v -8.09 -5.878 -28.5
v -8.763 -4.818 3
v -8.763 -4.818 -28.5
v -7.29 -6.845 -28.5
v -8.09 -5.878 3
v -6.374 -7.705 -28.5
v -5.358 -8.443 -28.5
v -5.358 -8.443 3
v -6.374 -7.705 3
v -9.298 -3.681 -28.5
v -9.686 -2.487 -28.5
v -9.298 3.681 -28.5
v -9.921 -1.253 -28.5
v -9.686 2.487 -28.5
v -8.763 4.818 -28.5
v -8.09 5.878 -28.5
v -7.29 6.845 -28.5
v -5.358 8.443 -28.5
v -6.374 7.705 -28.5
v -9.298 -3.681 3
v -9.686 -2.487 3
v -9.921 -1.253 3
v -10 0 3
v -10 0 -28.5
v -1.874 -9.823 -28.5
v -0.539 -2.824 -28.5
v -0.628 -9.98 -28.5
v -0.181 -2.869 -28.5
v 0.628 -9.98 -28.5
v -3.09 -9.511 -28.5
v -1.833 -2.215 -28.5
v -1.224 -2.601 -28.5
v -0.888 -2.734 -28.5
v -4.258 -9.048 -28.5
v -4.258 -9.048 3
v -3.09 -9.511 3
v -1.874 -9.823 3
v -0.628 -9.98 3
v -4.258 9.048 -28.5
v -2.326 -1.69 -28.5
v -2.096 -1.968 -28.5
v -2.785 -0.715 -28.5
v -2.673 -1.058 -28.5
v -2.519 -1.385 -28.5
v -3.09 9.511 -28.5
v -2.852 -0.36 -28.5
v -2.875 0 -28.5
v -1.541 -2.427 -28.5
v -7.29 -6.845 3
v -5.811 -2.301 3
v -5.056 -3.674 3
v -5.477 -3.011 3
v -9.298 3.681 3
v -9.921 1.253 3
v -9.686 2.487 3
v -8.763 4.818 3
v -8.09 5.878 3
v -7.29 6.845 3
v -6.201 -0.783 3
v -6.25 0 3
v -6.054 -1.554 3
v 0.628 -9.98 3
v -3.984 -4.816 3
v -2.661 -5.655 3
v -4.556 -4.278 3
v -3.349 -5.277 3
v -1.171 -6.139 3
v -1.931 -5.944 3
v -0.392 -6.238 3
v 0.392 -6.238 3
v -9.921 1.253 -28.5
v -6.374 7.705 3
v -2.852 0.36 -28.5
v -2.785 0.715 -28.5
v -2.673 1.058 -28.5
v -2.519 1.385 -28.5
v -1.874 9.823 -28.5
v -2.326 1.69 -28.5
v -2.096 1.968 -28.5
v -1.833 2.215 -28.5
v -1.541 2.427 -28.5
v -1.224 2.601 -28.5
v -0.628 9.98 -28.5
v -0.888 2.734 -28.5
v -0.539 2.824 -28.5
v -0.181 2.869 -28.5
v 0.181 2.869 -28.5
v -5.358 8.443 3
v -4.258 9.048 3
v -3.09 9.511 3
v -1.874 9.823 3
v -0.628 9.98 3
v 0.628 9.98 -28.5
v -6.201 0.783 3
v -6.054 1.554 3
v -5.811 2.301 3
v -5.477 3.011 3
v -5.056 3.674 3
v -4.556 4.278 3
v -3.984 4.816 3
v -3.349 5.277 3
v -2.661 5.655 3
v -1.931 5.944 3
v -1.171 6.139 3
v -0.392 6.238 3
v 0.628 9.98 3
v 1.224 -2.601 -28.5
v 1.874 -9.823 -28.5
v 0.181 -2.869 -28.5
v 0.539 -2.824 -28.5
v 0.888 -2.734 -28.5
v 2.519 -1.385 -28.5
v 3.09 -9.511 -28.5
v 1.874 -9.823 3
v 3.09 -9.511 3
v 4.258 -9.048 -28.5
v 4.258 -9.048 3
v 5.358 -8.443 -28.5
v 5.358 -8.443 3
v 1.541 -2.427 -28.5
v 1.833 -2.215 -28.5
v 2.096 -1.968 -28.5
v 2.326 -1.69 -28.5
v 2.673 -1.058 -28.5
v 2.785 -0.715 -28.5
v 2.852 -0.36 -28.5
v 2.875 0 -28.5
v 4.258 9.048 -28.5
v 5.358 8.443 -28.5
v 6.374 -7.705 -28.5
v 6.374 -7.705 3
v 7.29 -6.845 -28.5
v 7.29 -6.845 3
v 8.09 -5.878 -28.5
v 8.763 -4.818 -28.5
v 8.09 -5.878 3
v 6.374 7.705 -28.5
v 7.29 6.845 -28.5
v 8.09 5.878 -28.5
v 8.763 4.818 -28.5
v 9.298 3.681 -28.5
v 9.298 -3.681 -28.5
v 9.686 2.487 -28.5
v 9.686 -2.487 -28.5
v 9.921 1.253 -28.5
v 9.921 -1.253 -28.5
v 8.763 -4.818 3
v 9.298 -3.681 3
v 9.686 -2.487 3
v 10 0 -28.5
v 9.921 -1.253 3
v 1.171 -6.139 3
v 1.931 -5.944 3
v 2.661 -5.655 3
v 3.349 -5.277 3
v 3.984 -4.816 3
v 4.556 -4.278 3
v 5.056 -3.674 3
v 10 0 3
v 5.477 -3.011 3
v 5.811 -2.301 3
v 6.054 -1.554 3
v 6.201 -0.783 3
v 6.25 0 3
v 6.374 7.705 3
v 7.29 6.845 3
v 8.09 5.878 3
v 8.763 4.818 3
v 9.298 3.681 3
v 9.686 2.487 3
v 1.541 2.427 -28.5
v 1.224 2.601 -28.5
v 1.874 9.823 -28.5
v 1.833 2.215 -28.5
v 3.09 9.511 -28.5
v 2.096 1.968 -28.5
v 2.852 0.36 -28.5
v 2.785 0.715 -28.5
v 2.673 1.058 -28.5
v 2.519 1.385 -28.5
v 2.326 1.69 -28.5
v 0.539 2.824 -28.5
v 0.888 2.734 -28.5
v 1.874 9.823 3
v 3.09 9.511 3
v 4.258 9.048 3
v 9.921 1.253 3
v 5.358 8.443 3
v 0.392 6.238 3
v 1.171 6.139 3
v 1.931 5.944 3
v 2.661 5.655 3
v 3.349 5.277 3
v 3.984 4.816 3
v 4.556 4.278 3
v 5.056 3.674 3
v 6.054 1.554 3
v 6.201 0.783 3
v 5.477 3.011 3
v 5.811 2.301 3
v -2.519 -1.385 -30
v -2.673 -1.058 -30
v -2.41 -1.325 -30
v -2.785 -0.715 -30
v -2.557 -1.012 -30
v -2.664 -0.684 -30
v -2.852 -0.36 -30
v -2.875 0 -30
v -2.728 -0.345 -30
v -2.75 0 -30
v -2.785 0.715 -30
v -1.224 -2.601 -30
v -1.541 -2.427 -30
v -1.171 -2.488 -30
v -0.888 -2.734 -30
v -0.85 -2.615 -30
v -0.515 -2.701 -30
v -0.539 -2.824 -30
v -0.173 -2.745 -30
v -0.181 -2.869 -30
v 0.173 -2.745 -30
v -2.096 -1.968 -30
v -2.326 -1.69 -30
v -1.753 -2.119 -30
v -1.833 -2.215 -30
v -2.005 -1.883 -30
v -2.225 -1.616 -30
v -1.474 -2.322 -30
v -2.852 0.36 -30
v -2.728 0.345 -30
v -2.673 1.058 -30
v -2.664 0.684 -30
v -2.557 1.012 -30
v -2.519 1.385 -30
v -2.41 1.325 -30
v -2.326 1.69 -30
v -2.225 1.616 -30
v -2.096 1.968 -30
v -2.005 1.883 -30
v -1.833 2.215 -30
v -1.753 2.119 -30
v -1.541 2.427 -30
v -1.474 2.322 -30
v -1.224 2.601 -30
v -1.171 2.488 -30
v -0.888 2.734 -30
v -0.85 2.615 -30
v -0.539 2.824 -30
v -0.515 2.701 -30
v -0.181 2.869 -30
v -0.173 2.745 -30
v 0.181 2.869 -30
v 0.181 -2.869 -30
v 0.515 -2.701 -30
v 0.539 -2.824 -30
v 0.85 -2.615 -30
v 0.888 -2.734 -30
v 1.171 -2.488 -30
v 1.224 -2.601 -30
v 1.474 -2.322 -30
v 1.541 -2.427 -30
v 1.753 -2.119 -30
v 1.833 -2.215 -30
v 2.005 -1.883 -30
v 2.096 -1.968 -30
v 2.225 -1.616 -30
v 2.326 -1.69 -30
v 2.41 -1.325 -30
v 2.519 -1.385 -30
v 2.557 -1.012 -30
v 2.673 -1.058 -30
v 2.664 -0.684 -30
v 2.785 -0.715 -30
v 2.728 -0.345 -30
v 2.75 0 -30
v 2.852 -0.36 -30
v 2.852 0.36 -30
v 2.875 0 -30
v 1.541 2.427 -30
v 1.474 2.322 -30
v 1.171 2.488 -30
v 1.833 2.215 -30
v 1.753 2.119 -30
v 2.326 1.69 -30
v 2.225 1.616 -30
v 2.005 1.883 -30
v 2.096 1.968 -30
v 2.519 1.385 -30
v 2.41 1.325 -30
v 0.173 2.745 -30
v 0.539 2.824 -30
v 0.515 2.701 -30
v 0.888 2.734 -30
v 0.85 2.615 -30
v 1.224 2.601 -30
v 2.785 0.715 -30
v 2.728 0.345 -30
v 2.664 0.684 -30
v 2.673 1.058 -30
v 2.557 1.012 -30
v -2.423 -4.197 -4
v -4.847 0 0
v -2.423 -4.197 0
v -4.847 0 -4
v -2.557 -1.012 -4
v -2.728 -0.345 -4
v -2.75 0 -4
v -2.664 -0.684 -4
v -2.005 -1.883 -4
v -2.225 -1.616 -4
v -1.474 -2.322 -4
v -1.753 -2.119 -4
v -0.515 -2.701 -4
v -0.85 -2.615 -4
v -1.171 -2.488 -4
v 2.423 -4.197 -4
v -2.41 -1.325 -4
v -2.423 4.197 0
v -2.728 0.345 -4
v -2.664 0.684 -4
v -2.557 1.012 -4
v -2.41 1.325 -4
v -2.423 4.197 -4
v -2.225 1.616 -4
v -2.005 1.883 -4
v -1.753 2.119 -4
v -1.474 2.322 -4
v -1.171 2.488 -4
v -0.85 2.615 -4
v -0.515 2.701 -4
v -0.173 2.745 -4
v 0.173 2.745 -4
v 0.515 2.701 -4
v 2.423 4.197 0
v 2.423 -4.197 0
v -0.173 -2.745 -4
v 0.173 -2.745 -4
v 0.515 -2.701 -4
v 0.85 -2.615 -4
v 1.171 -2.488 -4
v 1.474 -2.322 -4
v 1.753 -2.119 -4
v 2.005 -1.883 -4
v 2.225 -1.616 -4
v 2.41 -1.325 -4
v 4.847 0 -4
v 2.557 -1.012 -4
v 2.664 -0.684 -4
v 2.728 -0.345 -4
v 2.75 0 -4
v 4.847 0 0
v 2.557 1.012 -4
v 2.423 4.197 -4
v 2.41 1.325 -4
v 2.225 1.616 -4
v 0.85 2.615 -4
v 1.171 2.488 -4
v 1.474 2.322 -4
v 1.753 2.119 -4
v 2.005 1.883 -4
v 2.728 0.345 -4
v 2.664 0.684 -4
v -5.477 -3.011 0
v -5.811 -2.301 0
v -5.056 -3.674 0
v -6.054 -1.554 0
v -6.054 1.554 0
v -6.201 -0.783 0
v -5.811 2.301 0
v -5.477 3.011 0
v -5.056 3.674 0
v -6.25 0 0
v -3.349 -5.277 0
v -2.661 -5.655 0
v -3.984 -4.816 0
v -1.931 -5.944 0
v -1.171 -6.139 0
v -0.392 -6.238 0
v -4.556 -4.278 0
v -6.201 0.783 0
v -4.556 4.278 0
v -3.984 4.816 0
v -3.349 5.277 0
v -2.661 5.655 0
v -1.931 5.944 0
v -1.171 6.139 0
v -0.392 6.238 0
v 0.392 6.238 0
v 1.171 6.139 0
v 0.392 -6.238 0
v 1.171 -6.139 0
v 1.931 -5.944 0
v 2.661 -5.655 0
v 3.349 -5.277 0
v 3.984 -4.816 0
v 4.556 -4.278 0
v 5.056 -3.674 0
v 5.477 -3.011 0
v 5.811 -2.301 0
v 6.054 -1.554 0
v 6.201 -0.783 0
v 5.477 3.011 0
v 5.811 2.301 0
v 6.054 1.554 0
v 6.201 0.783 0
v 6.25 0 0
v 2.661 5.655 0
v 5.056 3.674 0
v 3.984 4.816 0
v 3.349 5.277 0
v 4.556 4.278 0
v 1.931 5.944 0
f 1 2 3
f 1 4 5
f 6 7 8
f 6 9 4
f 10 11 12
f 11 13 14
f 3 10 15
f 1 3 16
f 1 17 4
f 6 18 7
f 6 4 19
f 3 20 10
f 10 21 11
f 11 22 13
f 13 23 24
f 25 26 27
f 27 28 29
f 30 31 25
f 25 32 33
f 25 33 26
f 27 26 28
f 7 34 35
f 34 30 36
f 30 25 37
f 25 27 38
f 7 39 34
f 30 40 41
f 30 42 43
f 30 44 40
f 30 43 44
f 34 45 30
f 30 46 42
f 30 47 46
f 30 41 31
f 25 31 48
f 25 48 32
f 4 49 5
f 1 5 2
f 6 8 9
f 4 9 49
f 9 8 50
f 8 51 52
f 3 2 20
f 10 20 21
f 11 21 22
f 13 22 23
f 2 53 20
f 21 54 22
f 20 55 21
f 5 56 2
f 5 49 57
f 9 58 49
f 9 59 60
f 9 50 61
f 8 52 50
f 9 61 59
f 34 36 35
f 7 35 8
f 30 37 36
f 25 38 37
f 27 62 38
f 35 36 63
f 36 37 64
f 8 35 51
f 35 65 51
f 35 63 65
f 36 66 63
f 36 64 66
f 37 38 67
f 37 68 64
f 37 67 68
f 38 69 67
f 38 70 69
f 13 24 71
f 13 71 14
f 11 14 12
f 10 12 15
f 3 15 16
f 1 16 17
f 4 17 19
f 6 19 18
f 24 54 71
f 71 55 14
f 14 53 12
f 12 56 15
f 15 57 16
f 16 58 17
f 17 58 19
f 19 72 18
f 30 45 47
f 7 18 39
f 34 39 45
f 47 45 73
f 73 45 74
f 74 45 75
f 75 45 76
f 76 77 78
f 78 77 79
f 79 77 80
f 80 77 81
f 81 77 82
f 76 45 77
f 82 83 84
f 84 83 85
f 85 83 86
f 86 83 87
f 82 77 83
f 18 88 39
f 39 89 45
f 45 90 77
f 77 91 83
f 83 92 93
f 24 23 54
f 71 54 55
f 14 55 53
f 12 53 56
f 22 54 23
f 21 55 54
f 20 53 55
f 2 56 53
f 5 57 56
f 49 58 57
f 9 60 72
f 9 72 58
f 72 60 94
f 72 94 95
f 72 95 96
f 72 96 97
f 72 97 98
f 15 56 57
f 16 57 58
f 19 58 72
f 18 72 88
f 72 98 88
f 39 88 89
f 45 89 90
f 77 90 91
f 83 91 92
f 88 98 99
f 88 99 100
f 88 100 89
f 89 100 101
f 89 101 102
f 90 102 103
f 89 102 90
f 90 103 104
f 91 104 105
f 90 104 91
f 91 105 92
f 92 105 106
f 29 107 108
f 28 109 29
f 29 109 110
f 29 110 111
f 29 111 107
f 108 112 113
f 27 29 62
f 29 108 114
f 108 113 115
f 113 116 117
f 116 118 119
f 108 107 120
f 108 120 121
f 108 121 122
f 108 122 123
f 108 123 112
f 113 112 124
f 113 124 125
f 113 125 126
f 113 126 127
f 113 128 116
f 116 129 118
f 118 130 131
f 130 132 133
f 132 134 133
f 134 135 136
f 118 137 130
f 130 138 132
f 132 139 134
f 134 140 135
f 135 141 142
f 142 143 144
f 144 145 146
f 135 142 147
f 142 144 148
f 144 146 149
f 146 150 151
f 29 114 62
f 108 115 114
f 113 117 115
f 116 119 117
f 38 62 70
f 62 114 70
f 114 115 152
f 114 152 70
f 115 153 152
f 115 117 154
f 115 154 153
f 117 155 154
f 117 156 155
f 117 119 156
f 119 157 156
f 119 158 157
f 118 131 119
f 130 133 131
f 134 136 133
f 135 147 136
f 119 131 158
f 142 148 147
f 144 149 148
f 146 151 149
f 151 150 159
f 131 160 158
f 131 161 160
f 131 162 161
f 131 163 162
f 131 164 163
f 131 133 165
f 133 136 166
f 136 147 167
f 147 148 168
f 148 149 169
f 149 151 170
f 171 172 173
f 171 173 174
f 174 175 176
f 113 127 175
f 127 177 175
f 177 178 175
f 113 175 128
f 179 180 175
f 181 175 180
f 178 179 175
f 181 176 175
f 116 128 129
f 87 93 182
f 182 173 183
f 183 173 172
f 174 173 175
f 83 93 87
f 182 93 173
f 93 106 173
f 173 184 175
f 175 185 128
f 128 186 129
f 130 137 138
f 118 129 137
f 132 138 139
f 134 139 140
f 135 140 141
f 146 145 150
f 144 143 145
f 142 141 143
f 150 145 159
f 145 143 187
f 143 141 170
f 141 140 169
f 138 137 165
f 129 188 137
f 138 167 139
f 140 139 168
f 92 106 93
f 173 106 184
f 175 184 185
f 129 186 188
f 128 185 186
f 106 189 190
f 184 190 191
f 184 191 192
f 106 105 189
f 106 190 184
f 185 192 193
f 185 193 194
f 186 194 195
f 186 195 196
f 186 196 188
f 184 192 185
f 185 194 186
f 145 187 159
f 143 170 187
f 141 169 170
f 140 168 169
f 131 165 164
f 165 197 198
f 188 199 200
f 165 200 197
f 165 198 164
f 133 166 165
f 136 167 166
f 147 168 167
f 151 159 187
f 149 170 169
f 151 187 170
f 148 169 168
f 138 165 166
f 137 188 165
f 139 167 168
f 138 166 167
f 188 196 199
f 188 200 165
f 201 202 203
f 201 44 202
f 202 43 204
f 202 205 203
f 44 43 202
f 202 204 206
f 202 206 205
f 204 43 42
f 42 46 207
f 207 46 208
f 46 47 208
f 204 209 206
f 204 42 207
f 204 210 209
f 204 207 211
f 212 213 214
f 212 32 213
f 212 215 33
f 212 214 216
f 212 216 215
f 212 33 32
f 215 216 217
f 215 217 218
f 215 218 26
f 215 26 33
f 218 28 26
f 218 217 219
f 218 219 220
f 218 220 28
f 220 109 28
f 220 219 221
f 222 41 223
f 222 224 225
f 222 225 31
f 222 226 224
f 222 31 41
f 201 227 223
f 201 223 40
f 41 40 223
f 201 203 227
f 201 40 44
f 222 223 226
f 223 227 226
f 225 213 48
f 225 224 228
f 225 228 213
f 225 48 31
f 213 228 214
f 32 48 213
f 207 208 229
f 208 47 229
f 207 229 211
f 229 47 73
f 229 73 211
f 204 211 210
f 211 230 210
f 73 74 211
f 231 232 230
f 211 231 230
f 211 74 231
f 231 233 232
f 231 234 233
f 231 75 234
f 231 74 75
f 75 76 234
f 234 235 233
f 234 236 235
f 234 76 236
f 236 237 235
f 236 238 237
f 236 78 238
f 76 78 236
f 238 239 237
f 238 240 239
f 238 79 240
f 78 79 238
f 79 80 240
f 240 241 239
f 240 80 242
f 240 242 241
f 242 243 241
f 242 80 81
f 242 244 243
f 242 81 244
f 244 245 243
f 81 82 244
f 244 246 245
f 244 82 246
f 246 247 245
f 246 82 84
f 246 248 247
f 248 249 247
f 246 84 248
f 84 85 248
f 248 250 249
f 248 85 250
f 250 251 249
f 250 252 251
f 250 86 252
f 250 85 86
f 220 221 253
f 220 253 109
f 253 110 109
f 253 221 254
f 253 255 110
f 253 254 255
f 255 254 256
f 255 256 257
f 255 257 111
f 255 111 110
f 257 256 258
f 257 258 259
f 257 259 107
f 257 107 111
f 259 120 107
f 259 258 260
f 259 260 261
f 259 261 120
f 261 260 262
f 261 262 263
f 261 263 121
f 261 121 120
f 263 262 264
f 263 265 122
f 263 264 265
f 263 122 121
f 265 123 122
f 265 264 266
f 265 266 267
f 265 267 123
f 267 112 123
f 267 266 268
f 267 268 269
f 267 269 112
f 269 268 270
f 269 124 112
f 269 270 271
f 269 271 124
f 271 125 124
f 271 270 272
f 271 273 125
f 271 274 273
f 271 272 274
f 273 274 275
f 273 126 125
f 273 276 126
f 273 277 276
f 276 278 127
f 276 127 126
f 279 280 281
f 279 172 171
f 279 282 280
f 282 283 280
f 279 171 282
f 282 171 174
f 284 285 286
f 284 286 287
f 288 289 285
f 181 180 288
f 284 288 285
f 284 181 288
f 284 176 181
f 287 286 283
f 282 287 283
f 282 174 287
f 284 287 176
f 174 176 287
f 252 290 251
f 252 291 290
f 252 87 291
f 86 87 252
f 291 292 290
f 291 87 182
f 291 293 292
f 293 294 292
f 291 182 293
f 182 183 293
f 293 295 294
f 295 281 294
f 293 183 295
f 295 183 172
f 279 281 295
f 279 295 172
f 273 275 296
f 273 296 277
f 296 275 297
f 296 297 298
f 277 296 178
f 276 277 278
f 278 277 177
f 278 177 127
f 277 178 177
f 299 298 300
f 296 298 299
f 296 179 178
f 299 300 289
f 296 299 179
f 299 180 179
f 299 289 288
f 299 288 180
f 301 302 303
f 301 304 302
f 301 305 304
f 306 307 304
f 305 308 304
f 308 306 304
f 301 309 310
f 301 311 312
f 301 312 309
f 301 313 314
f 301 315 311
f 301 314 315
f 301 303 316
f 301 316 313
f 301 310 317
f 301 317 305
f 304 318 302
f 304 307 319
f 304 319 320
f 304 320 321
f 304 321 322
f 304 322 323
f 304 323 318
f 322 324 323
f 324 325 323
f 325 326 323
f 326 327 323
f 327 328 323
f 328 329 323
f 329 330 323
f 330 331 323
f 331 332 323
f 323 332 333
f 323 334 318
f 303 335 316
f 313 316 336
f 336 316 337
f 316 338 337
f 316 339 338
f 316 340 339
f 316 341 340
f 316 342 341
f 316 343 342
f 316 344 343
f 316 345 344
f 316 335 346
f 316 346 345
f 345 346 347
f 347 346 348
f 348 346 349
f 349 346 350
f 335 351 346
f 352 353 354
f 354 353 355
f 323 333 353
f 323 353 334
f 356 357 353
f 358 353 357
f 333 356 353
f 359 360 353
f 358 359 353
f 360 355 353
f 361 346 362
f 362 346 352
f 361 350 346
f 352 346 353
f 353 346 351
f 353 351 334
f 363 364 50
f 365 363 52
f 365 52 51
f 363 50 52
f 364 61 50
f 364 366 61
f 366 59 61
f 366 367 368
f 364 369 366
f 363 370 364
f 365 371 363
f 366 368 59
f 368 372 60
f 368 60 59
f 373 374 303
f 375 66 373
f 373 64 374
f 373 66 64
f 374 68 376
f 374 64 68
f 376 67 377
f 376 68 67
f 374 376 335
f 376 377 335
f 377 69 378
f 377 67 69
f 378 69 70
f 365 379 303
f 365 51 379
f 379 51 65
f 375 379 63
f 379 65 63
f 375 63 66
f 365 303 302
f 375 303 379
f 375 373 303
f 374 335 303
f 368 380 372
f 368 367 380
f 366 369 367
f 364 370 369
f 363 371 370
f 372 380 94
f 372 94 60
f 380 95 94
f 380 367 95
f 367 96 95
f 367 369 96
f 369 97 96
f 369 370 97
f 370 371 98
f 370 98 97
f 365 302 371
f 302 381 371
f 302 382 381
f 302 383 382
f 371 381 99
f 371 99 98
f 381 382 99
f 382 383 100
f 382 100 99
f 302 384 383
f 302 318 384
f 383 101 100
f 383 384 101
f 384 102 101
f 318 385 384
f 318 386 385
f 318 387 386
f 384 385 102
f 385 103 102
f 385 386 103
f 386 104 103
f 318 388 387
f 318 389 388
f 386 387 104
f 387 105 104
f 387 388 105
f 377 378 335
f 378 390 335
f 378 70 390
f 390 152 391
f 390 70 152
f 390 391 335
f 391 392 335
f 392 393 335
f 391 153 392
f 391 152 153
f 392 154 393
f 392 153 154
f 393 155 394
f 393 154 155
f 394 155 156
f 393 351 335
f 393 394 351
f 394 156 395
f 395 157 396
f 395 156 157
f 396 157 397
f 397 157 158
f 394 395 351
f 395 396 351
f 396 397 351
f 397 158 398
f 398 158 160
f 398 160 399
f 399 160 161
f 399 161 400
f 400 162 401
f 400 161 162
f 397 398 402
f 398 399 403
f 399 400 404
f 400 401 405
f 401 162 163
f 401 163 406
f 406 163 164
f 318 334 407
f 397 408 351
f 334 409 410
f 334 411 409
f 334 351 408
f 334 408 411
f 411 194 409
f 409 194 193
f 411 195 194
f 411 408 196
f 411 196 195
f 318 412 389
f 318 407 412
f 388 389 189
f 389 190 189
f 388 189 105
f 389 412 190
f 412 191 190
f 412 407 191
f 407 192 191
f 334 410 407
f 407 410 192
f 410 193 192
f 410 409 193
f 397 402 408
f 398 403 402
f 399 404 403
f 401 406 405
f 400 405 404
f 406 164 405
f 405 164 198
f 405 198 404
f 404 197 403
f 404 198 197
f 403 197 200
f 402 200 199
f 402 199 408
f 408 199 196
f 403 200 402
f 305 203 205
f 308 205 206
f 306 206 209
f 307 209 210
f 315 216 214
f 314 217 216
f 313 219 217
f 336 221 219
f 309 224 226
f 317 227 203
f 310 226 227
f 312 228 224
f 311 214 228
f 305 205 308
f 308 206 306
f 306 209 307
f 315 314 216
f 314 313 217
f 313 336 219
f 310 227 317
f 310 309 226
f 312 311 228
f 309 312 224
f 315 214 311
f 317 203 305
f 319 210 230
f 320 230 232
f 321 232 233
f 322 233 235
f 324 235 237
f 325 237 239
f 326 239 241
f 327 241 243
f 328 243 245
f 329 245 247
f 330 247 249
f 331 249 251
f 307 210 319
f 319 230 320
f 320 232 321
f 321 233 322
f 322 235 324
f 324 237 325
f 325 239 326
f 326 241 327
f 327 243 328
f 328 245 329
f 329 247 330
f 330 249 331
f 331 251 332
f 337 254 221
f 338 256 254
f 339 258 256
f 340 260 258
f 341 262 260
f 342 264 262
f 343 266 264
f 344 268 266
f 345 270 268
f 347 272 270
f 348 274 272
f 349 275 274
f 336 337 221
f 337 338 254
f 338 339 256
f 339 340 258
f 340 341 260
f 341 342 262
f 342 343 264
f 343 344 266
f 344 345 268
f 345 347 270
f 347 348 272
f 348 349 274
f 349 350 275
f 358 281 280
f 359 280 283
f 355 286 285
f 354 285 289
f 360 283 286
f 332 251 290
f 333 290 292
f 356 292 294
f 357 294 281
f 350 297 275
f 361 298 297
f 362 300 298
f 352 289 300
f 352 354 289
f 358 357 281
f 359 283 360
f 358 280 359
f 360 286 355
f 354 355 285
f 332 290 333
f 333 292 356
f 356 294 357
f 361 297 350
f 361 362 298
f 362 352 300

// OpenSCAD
$fn = 50;

difference() {
	union() {
		translate(v = [0, 0, -28.5]) {
			cylinder(h = 31.5, r = 10.0);
		}
		#translate(v = [0, 0, -30.0]) {
			cylinder(h = 30, r = 2.875);
		}
	}
	union() {
		translate(v = [0, 0, 0]) {
			rotate(a = [0, 0, 0]) {
				difference() {
					union() {
						translate(v = [0, 0, -4]) {
							linear_extrude(height = 4) {
								polygon(points = [[4.8468, 0.0], [2.4234000000000004, 4.197451927062417], [-2.423399999999999, 4.197451927062417], [-4.8468, 5.935618106107392e-16], [-2.423400000000002, -4.197451927062416], [2.423399999999997, -4.197451927062419]]);
							}
						}
					}
					union();
				}
			}
		}
		#cylinder(h = 3, r = 6.25);
		#translate(v = [0, 0, -100.0]) {
			cylinder(h = 200, r = 2.75);
		}
	}
}
